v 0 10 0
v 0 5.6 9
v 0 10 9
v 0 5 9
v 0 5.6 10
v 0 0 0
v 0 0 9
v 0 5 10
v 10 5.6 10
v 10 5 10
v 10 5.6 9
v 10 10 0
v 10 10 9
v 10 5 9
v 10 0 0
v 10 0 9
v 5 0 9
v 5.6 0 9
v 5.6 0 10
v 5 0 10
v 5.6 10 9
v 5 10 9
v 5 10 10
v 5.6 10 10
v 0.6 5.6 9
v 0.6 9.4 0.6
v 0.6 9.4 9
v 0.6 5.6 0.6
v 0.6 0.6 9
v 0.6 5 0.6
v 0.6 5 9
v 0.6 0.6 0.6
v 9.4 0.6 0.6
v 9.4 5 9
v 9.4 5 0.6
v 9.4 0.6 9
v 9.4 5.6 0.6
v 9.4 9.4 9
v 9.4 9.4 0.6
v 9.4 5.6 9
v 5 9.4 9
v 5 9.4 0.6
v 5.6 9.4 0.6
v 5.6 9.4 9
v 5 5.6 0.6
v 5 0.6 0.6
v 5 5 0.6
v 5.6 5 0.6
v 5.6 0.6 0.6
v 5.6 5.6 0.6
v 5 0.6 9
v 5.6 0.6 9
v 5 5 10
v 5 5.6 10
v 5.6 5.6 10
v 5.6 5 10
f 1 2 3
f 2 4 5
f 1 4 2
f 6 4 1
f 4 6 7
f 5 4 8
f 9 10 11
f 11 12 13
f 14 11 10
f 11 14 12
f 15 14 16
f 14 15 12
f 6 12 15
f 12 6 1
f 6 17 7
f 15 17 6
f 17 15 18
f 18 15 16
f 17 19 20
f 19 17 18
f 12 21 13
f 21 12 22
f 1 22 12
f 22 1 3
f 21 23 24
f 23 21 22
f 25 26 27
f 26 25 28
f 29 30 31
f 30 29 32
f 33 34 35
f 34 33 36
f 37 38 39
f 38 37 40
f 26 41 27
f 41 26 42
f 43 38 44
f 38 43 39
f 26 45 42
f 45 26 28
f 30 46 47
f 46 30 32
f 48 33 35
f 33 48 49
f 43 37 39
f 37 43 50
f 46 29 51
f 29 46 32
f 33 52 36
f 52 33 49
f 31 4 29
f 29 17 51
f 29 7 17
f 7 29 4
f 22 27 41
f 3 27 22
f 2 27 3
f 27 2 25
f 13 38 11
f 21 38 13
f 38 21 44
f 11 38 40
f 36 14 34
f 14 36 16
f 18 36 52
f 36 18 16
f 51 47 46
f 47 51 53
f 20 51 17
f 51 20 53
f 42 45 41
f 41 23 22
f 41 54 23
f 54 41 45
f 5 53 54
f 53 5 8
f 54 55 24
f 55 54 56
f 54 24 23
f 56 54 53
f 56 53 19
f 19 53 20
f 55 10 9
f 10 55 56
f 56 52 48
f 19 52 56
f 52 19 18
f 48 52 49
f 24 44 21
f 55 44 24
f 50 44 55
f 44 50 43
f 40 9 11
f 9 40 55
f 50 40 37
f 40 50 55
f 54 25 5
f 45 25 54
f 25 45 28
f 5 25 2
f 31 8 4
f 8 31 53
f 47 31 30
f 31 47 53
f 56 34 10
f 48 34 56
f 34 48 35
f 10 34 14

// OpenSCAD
thick = 0.6;

union() {
	difference() {
		cube([10,10,10]);

		translate([thick,thick,thick])
		cube([10-2*thick,10-2*thick,10-2*thick]);

		translate([-1,-1,9])
		cube([12,12,12]);
	}
	
	translate([5,0,0])
	cube([thick,10,10]);
	
	translate([0,5,0])
	cube([10,thick,10]);
	

}
